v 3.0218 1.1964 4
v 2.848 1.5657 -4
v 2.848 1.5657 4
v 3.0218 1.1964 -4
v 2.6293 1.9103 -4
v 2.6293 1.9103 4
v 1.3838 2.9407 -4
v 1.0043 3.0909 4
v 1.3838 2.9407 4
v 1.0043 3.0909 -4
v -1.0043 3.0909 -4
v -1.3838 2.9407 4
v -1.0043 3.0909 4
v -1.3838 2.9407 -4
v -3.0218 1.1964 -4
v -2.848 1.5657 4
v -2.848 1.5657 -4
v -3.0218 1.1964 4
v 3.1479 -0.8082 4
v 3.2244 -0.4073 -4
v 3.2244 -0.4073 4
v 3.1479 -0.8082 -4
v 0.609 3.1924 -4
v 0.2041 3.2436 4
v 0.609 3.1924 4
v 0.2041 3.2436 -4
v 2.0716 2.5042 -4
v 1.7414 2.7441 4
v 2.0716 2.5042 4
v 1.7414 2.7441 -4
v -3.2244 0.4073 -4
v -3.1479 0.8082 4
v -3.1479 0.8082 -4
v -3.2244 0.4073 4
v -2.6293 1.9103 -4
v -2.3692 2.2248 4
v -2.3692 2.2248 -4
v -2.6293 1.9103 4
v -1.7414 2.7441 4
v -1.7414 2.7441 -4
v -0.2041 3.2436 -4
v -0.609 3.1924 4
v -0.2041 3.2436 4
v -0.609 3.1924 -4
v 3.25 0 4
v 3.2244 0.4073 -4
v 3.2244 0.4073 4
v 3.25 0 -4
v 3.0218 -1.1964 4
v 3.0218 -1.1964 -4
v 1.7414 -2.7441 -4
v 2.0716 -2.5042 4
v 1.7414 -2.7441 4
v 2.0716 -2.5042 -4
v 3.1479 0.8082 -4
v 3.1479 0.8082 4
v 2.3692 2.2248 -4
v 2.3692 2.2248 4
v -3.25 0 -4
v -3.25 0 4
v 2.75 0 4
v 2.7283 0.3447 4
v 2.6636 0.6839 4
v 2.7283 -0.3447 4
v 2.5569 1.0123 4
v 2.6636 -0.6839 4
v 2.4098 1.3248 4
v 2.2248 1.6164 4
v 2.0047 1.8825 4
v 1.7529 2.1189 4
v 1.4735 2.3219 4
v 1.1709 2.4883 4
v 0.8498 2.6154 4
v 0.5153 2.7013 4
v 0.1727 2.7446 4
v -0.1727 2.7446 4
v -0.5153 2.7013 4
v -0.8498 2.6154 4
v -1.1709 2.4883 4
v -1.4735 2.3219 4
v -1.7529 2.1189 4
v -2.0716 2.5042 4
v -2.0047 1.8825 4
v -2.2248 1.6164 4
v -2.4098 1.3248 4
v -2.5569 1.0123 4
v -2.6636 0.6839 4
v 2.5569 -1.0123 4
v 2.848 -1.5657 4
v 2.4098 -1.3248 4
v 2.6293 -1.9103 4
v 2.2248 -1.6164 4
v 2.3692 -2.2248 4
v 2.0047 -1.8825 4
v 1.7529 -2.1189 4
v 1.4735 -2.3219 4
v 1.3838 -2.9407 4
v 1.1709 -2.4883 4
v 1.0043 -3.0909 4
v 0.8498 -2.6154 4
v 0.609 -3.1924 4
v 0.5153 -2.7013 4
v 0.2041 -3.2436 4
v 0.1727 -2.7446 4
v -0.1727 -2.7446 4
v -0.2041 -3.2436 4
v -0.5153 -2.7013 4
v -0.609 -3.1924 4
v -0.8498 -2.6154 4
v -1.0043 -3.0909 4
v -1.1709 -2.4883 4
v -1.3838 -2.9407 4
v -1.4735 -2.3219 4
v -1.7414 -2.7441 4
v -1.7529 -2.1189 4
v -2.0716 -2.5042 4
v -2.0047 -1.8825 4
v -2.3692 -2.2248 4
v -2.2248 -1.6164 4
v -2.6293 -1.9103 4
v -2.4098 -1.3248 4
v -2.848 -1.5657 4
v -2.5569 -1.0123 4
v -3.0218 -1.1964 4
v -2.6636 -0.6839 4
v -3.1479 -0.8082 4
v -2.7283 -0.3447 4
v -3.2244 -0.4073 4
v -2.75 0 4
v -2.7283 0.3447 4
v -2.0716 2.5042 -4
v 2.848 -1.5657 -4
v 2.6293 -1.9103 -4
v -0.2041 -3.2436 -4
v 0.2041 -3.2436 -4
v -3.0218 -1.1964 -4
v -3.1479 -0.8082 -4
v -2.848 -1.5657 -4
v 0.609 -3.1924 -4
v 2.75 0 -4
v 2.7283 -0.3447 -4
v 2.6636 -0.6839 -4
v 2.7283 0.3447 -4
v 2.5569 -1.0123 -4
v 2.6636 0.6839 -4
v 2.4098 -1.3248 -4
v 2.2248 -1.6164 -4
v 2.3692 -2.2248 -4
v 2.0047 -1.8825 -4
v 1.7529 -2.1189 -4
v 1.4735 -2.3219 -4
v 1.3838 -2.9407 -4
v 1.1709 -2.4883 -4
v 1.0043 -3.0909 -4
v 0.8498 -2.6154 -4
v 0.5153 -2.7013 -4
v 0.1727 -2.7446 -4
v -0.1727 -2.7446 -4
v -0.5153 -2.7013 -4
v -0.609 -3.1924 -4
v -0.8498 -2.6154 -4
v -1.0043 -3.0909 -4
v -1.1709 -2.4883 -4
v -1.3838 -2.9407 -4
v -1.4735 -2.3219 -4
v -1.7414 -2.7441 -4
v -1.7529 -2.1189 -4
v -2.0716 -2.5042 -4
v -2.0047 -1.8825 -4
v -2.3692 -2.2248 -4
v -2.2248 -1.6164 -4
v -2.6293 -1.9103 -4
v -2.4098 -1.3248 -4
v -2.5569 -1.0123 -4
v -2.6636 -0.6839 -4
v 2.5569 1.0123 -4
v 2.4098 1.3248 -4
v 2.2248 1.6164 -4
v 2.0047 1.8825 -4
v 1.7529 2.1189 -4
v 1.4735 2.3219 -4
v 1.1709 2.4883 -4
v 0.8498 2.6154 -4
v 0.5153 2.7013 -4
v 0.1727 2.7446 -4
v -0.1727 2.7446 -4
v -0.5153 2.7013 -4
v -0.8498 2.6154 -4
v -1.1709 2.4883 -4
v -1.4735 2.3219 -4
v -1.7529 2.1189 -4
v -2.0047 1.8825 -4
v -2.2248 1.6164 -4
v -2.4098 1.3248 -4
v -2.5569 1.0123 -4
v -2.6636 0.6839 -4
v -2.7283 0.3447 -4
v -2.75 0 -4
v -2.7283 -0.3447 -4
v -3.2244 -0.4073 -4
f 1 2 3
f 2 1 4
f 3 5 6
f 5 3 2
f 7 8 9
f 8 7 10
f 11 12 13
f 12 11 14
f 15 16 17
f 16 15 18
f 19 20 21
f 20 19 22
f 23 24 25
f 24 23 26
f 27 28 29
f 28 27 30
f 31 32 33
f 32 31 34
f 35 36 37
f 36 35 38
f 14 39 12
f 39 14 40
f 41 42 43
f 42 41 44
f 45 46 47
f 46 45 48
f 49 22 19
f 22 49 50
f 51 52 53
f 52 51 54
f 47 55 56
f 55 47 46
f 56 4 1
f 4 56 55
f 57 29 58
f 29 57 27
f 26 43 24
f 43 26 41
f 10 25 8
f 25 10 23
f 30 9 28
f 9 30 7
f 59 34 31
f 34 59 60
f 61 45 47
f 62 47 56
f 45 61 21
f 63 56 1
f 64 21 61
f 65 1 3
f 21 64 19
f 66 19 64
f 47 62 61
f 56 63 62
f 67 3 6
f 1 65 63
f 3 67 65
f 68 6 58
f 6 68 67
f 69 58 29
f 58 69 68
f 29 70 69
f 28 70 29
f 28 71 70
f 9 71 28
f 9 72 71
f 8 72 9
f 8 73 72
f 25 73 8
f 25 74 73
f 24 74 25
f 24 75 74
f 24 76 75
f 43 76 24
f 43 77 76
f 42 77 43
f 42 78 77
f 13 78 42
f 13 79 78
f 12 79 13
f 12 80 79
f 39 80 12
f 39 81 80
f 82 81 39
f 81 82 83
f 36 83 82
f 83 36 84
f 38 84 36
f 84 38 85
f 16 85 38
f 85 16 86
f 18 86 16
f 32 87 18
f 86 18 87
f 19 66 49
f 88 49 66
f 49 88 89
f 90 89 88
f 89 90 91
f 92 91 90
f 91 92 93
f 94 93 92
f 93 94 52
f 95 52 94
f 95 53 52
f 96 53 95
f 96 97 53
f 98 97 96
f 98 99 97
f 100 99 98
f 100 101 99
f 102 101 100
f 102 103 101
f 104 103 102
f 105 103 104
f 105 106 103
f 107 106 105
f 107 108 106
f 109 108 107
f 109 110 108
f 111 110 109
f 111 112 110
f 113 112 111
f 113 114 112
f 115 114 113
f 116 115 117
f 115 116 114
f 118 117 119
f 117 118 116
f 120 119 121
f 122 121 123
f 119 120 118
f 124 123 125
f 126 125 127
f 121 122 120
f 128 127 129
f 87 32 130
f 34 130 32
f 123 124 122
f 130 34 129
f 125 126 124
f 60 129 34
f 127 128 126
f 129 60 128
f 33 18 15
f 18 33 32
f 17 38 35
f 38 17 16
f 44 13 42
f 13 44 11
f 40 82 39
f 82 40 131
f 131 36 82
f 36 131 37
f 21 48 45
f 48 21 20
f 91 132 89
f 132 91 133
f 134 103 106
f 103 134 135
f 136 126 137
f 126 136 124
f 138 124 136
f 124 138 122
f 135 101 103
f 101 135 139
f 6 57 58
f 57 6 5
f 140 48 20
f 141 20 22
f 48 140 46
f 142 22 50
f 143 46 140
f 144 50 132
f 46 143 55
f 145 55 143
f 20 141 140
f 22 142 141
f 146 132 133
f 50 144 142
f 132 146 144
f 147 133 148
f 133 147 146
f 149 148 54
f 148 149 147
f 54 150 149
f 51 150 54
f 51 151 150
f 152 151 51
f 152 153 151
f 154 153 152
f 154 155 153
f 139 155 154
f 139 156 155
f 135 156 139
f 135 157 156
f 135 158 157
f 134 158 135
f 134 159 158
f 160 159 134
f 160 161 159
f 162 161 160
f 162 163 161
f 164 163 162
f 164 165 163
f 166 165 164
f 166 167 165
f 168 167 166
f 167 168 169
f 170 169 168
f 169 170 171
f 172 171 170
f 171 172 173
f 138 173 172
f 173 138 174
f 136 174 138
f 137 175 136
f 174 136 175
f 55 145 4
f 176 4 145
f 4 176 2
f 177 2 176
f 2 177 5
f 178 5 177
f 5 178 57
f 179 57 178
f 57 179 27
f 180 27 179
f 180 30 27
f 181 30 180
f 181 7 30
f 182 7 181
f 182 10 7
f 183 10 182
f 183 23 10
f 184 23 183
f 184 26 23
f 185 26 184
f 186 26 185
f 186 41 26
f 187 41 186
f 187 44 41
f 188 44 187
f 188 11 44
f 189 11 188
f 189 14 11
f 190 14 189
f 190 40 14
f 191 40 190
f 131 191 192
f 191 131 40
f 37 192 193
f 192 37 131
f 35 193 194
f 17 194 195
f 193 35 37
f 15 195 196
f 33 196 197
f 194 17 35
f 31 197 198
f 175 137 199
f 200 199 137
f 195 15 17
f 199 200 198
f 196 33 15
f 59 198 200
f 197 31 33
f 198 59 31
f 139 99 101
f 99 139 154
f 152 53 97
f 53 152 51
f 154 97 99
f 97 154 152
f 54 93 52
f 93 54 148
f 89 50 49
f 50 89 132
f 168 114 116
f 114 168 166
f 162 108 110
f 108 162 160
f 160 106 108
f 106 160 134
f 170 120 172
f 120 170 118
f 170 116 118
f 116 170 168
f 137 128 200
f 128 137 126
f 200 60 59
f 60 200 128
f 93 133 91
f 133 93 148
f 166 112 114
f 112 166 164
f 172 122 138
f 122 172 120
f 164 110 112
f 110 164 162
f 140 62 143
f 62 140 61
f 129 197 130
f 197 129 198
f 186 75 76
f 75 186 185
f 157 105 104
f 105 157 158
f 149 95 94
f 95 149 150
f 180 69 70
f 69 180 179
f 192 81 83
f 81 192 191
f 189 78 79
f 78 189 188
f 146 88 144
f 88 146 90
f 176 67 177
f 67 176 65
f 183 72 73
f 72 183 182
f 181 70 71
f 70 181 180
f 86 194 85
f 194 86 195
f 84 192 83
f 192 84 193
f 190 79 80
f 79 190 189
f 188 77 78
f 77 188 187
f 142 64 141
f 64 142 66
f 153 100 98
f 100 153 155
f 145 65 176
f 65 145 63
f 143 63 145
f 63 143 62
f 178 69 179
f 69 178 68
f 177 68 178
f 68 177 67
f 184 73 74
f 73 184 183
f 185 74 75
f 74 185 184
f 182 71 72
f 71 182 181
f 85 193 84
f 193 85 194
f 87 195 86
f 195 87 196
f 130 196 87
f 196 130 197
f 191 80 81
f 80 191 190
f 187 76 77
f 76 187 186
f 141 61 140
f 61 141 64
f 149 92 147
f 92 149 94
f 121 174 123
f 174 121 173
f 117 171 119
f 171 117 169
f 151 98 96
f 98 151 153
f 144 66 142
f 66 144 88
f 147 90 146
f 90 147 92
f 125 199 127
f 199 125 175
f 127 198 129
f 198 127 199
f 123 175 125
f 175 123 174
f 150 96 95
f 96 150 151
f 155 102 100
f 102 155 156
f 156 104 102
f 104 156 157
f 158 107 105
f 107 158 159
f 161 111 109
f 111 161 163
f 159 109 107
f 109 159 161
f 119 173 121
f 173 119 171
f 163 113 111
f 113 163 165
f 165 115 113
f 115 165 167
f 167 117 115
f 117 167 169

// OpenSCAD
$fn = 50;


difference() {
	union() {
		translate(v = [0, 0, -4.0000000000]) {
			cylinder(h = 8, r = 3.2500000000);
		}
	}
	union() {
		translate(v = [0, 0, -100.0000000000]) {
			cylinder(h = 200, r = 2.7500000000);
		}
	}
}
